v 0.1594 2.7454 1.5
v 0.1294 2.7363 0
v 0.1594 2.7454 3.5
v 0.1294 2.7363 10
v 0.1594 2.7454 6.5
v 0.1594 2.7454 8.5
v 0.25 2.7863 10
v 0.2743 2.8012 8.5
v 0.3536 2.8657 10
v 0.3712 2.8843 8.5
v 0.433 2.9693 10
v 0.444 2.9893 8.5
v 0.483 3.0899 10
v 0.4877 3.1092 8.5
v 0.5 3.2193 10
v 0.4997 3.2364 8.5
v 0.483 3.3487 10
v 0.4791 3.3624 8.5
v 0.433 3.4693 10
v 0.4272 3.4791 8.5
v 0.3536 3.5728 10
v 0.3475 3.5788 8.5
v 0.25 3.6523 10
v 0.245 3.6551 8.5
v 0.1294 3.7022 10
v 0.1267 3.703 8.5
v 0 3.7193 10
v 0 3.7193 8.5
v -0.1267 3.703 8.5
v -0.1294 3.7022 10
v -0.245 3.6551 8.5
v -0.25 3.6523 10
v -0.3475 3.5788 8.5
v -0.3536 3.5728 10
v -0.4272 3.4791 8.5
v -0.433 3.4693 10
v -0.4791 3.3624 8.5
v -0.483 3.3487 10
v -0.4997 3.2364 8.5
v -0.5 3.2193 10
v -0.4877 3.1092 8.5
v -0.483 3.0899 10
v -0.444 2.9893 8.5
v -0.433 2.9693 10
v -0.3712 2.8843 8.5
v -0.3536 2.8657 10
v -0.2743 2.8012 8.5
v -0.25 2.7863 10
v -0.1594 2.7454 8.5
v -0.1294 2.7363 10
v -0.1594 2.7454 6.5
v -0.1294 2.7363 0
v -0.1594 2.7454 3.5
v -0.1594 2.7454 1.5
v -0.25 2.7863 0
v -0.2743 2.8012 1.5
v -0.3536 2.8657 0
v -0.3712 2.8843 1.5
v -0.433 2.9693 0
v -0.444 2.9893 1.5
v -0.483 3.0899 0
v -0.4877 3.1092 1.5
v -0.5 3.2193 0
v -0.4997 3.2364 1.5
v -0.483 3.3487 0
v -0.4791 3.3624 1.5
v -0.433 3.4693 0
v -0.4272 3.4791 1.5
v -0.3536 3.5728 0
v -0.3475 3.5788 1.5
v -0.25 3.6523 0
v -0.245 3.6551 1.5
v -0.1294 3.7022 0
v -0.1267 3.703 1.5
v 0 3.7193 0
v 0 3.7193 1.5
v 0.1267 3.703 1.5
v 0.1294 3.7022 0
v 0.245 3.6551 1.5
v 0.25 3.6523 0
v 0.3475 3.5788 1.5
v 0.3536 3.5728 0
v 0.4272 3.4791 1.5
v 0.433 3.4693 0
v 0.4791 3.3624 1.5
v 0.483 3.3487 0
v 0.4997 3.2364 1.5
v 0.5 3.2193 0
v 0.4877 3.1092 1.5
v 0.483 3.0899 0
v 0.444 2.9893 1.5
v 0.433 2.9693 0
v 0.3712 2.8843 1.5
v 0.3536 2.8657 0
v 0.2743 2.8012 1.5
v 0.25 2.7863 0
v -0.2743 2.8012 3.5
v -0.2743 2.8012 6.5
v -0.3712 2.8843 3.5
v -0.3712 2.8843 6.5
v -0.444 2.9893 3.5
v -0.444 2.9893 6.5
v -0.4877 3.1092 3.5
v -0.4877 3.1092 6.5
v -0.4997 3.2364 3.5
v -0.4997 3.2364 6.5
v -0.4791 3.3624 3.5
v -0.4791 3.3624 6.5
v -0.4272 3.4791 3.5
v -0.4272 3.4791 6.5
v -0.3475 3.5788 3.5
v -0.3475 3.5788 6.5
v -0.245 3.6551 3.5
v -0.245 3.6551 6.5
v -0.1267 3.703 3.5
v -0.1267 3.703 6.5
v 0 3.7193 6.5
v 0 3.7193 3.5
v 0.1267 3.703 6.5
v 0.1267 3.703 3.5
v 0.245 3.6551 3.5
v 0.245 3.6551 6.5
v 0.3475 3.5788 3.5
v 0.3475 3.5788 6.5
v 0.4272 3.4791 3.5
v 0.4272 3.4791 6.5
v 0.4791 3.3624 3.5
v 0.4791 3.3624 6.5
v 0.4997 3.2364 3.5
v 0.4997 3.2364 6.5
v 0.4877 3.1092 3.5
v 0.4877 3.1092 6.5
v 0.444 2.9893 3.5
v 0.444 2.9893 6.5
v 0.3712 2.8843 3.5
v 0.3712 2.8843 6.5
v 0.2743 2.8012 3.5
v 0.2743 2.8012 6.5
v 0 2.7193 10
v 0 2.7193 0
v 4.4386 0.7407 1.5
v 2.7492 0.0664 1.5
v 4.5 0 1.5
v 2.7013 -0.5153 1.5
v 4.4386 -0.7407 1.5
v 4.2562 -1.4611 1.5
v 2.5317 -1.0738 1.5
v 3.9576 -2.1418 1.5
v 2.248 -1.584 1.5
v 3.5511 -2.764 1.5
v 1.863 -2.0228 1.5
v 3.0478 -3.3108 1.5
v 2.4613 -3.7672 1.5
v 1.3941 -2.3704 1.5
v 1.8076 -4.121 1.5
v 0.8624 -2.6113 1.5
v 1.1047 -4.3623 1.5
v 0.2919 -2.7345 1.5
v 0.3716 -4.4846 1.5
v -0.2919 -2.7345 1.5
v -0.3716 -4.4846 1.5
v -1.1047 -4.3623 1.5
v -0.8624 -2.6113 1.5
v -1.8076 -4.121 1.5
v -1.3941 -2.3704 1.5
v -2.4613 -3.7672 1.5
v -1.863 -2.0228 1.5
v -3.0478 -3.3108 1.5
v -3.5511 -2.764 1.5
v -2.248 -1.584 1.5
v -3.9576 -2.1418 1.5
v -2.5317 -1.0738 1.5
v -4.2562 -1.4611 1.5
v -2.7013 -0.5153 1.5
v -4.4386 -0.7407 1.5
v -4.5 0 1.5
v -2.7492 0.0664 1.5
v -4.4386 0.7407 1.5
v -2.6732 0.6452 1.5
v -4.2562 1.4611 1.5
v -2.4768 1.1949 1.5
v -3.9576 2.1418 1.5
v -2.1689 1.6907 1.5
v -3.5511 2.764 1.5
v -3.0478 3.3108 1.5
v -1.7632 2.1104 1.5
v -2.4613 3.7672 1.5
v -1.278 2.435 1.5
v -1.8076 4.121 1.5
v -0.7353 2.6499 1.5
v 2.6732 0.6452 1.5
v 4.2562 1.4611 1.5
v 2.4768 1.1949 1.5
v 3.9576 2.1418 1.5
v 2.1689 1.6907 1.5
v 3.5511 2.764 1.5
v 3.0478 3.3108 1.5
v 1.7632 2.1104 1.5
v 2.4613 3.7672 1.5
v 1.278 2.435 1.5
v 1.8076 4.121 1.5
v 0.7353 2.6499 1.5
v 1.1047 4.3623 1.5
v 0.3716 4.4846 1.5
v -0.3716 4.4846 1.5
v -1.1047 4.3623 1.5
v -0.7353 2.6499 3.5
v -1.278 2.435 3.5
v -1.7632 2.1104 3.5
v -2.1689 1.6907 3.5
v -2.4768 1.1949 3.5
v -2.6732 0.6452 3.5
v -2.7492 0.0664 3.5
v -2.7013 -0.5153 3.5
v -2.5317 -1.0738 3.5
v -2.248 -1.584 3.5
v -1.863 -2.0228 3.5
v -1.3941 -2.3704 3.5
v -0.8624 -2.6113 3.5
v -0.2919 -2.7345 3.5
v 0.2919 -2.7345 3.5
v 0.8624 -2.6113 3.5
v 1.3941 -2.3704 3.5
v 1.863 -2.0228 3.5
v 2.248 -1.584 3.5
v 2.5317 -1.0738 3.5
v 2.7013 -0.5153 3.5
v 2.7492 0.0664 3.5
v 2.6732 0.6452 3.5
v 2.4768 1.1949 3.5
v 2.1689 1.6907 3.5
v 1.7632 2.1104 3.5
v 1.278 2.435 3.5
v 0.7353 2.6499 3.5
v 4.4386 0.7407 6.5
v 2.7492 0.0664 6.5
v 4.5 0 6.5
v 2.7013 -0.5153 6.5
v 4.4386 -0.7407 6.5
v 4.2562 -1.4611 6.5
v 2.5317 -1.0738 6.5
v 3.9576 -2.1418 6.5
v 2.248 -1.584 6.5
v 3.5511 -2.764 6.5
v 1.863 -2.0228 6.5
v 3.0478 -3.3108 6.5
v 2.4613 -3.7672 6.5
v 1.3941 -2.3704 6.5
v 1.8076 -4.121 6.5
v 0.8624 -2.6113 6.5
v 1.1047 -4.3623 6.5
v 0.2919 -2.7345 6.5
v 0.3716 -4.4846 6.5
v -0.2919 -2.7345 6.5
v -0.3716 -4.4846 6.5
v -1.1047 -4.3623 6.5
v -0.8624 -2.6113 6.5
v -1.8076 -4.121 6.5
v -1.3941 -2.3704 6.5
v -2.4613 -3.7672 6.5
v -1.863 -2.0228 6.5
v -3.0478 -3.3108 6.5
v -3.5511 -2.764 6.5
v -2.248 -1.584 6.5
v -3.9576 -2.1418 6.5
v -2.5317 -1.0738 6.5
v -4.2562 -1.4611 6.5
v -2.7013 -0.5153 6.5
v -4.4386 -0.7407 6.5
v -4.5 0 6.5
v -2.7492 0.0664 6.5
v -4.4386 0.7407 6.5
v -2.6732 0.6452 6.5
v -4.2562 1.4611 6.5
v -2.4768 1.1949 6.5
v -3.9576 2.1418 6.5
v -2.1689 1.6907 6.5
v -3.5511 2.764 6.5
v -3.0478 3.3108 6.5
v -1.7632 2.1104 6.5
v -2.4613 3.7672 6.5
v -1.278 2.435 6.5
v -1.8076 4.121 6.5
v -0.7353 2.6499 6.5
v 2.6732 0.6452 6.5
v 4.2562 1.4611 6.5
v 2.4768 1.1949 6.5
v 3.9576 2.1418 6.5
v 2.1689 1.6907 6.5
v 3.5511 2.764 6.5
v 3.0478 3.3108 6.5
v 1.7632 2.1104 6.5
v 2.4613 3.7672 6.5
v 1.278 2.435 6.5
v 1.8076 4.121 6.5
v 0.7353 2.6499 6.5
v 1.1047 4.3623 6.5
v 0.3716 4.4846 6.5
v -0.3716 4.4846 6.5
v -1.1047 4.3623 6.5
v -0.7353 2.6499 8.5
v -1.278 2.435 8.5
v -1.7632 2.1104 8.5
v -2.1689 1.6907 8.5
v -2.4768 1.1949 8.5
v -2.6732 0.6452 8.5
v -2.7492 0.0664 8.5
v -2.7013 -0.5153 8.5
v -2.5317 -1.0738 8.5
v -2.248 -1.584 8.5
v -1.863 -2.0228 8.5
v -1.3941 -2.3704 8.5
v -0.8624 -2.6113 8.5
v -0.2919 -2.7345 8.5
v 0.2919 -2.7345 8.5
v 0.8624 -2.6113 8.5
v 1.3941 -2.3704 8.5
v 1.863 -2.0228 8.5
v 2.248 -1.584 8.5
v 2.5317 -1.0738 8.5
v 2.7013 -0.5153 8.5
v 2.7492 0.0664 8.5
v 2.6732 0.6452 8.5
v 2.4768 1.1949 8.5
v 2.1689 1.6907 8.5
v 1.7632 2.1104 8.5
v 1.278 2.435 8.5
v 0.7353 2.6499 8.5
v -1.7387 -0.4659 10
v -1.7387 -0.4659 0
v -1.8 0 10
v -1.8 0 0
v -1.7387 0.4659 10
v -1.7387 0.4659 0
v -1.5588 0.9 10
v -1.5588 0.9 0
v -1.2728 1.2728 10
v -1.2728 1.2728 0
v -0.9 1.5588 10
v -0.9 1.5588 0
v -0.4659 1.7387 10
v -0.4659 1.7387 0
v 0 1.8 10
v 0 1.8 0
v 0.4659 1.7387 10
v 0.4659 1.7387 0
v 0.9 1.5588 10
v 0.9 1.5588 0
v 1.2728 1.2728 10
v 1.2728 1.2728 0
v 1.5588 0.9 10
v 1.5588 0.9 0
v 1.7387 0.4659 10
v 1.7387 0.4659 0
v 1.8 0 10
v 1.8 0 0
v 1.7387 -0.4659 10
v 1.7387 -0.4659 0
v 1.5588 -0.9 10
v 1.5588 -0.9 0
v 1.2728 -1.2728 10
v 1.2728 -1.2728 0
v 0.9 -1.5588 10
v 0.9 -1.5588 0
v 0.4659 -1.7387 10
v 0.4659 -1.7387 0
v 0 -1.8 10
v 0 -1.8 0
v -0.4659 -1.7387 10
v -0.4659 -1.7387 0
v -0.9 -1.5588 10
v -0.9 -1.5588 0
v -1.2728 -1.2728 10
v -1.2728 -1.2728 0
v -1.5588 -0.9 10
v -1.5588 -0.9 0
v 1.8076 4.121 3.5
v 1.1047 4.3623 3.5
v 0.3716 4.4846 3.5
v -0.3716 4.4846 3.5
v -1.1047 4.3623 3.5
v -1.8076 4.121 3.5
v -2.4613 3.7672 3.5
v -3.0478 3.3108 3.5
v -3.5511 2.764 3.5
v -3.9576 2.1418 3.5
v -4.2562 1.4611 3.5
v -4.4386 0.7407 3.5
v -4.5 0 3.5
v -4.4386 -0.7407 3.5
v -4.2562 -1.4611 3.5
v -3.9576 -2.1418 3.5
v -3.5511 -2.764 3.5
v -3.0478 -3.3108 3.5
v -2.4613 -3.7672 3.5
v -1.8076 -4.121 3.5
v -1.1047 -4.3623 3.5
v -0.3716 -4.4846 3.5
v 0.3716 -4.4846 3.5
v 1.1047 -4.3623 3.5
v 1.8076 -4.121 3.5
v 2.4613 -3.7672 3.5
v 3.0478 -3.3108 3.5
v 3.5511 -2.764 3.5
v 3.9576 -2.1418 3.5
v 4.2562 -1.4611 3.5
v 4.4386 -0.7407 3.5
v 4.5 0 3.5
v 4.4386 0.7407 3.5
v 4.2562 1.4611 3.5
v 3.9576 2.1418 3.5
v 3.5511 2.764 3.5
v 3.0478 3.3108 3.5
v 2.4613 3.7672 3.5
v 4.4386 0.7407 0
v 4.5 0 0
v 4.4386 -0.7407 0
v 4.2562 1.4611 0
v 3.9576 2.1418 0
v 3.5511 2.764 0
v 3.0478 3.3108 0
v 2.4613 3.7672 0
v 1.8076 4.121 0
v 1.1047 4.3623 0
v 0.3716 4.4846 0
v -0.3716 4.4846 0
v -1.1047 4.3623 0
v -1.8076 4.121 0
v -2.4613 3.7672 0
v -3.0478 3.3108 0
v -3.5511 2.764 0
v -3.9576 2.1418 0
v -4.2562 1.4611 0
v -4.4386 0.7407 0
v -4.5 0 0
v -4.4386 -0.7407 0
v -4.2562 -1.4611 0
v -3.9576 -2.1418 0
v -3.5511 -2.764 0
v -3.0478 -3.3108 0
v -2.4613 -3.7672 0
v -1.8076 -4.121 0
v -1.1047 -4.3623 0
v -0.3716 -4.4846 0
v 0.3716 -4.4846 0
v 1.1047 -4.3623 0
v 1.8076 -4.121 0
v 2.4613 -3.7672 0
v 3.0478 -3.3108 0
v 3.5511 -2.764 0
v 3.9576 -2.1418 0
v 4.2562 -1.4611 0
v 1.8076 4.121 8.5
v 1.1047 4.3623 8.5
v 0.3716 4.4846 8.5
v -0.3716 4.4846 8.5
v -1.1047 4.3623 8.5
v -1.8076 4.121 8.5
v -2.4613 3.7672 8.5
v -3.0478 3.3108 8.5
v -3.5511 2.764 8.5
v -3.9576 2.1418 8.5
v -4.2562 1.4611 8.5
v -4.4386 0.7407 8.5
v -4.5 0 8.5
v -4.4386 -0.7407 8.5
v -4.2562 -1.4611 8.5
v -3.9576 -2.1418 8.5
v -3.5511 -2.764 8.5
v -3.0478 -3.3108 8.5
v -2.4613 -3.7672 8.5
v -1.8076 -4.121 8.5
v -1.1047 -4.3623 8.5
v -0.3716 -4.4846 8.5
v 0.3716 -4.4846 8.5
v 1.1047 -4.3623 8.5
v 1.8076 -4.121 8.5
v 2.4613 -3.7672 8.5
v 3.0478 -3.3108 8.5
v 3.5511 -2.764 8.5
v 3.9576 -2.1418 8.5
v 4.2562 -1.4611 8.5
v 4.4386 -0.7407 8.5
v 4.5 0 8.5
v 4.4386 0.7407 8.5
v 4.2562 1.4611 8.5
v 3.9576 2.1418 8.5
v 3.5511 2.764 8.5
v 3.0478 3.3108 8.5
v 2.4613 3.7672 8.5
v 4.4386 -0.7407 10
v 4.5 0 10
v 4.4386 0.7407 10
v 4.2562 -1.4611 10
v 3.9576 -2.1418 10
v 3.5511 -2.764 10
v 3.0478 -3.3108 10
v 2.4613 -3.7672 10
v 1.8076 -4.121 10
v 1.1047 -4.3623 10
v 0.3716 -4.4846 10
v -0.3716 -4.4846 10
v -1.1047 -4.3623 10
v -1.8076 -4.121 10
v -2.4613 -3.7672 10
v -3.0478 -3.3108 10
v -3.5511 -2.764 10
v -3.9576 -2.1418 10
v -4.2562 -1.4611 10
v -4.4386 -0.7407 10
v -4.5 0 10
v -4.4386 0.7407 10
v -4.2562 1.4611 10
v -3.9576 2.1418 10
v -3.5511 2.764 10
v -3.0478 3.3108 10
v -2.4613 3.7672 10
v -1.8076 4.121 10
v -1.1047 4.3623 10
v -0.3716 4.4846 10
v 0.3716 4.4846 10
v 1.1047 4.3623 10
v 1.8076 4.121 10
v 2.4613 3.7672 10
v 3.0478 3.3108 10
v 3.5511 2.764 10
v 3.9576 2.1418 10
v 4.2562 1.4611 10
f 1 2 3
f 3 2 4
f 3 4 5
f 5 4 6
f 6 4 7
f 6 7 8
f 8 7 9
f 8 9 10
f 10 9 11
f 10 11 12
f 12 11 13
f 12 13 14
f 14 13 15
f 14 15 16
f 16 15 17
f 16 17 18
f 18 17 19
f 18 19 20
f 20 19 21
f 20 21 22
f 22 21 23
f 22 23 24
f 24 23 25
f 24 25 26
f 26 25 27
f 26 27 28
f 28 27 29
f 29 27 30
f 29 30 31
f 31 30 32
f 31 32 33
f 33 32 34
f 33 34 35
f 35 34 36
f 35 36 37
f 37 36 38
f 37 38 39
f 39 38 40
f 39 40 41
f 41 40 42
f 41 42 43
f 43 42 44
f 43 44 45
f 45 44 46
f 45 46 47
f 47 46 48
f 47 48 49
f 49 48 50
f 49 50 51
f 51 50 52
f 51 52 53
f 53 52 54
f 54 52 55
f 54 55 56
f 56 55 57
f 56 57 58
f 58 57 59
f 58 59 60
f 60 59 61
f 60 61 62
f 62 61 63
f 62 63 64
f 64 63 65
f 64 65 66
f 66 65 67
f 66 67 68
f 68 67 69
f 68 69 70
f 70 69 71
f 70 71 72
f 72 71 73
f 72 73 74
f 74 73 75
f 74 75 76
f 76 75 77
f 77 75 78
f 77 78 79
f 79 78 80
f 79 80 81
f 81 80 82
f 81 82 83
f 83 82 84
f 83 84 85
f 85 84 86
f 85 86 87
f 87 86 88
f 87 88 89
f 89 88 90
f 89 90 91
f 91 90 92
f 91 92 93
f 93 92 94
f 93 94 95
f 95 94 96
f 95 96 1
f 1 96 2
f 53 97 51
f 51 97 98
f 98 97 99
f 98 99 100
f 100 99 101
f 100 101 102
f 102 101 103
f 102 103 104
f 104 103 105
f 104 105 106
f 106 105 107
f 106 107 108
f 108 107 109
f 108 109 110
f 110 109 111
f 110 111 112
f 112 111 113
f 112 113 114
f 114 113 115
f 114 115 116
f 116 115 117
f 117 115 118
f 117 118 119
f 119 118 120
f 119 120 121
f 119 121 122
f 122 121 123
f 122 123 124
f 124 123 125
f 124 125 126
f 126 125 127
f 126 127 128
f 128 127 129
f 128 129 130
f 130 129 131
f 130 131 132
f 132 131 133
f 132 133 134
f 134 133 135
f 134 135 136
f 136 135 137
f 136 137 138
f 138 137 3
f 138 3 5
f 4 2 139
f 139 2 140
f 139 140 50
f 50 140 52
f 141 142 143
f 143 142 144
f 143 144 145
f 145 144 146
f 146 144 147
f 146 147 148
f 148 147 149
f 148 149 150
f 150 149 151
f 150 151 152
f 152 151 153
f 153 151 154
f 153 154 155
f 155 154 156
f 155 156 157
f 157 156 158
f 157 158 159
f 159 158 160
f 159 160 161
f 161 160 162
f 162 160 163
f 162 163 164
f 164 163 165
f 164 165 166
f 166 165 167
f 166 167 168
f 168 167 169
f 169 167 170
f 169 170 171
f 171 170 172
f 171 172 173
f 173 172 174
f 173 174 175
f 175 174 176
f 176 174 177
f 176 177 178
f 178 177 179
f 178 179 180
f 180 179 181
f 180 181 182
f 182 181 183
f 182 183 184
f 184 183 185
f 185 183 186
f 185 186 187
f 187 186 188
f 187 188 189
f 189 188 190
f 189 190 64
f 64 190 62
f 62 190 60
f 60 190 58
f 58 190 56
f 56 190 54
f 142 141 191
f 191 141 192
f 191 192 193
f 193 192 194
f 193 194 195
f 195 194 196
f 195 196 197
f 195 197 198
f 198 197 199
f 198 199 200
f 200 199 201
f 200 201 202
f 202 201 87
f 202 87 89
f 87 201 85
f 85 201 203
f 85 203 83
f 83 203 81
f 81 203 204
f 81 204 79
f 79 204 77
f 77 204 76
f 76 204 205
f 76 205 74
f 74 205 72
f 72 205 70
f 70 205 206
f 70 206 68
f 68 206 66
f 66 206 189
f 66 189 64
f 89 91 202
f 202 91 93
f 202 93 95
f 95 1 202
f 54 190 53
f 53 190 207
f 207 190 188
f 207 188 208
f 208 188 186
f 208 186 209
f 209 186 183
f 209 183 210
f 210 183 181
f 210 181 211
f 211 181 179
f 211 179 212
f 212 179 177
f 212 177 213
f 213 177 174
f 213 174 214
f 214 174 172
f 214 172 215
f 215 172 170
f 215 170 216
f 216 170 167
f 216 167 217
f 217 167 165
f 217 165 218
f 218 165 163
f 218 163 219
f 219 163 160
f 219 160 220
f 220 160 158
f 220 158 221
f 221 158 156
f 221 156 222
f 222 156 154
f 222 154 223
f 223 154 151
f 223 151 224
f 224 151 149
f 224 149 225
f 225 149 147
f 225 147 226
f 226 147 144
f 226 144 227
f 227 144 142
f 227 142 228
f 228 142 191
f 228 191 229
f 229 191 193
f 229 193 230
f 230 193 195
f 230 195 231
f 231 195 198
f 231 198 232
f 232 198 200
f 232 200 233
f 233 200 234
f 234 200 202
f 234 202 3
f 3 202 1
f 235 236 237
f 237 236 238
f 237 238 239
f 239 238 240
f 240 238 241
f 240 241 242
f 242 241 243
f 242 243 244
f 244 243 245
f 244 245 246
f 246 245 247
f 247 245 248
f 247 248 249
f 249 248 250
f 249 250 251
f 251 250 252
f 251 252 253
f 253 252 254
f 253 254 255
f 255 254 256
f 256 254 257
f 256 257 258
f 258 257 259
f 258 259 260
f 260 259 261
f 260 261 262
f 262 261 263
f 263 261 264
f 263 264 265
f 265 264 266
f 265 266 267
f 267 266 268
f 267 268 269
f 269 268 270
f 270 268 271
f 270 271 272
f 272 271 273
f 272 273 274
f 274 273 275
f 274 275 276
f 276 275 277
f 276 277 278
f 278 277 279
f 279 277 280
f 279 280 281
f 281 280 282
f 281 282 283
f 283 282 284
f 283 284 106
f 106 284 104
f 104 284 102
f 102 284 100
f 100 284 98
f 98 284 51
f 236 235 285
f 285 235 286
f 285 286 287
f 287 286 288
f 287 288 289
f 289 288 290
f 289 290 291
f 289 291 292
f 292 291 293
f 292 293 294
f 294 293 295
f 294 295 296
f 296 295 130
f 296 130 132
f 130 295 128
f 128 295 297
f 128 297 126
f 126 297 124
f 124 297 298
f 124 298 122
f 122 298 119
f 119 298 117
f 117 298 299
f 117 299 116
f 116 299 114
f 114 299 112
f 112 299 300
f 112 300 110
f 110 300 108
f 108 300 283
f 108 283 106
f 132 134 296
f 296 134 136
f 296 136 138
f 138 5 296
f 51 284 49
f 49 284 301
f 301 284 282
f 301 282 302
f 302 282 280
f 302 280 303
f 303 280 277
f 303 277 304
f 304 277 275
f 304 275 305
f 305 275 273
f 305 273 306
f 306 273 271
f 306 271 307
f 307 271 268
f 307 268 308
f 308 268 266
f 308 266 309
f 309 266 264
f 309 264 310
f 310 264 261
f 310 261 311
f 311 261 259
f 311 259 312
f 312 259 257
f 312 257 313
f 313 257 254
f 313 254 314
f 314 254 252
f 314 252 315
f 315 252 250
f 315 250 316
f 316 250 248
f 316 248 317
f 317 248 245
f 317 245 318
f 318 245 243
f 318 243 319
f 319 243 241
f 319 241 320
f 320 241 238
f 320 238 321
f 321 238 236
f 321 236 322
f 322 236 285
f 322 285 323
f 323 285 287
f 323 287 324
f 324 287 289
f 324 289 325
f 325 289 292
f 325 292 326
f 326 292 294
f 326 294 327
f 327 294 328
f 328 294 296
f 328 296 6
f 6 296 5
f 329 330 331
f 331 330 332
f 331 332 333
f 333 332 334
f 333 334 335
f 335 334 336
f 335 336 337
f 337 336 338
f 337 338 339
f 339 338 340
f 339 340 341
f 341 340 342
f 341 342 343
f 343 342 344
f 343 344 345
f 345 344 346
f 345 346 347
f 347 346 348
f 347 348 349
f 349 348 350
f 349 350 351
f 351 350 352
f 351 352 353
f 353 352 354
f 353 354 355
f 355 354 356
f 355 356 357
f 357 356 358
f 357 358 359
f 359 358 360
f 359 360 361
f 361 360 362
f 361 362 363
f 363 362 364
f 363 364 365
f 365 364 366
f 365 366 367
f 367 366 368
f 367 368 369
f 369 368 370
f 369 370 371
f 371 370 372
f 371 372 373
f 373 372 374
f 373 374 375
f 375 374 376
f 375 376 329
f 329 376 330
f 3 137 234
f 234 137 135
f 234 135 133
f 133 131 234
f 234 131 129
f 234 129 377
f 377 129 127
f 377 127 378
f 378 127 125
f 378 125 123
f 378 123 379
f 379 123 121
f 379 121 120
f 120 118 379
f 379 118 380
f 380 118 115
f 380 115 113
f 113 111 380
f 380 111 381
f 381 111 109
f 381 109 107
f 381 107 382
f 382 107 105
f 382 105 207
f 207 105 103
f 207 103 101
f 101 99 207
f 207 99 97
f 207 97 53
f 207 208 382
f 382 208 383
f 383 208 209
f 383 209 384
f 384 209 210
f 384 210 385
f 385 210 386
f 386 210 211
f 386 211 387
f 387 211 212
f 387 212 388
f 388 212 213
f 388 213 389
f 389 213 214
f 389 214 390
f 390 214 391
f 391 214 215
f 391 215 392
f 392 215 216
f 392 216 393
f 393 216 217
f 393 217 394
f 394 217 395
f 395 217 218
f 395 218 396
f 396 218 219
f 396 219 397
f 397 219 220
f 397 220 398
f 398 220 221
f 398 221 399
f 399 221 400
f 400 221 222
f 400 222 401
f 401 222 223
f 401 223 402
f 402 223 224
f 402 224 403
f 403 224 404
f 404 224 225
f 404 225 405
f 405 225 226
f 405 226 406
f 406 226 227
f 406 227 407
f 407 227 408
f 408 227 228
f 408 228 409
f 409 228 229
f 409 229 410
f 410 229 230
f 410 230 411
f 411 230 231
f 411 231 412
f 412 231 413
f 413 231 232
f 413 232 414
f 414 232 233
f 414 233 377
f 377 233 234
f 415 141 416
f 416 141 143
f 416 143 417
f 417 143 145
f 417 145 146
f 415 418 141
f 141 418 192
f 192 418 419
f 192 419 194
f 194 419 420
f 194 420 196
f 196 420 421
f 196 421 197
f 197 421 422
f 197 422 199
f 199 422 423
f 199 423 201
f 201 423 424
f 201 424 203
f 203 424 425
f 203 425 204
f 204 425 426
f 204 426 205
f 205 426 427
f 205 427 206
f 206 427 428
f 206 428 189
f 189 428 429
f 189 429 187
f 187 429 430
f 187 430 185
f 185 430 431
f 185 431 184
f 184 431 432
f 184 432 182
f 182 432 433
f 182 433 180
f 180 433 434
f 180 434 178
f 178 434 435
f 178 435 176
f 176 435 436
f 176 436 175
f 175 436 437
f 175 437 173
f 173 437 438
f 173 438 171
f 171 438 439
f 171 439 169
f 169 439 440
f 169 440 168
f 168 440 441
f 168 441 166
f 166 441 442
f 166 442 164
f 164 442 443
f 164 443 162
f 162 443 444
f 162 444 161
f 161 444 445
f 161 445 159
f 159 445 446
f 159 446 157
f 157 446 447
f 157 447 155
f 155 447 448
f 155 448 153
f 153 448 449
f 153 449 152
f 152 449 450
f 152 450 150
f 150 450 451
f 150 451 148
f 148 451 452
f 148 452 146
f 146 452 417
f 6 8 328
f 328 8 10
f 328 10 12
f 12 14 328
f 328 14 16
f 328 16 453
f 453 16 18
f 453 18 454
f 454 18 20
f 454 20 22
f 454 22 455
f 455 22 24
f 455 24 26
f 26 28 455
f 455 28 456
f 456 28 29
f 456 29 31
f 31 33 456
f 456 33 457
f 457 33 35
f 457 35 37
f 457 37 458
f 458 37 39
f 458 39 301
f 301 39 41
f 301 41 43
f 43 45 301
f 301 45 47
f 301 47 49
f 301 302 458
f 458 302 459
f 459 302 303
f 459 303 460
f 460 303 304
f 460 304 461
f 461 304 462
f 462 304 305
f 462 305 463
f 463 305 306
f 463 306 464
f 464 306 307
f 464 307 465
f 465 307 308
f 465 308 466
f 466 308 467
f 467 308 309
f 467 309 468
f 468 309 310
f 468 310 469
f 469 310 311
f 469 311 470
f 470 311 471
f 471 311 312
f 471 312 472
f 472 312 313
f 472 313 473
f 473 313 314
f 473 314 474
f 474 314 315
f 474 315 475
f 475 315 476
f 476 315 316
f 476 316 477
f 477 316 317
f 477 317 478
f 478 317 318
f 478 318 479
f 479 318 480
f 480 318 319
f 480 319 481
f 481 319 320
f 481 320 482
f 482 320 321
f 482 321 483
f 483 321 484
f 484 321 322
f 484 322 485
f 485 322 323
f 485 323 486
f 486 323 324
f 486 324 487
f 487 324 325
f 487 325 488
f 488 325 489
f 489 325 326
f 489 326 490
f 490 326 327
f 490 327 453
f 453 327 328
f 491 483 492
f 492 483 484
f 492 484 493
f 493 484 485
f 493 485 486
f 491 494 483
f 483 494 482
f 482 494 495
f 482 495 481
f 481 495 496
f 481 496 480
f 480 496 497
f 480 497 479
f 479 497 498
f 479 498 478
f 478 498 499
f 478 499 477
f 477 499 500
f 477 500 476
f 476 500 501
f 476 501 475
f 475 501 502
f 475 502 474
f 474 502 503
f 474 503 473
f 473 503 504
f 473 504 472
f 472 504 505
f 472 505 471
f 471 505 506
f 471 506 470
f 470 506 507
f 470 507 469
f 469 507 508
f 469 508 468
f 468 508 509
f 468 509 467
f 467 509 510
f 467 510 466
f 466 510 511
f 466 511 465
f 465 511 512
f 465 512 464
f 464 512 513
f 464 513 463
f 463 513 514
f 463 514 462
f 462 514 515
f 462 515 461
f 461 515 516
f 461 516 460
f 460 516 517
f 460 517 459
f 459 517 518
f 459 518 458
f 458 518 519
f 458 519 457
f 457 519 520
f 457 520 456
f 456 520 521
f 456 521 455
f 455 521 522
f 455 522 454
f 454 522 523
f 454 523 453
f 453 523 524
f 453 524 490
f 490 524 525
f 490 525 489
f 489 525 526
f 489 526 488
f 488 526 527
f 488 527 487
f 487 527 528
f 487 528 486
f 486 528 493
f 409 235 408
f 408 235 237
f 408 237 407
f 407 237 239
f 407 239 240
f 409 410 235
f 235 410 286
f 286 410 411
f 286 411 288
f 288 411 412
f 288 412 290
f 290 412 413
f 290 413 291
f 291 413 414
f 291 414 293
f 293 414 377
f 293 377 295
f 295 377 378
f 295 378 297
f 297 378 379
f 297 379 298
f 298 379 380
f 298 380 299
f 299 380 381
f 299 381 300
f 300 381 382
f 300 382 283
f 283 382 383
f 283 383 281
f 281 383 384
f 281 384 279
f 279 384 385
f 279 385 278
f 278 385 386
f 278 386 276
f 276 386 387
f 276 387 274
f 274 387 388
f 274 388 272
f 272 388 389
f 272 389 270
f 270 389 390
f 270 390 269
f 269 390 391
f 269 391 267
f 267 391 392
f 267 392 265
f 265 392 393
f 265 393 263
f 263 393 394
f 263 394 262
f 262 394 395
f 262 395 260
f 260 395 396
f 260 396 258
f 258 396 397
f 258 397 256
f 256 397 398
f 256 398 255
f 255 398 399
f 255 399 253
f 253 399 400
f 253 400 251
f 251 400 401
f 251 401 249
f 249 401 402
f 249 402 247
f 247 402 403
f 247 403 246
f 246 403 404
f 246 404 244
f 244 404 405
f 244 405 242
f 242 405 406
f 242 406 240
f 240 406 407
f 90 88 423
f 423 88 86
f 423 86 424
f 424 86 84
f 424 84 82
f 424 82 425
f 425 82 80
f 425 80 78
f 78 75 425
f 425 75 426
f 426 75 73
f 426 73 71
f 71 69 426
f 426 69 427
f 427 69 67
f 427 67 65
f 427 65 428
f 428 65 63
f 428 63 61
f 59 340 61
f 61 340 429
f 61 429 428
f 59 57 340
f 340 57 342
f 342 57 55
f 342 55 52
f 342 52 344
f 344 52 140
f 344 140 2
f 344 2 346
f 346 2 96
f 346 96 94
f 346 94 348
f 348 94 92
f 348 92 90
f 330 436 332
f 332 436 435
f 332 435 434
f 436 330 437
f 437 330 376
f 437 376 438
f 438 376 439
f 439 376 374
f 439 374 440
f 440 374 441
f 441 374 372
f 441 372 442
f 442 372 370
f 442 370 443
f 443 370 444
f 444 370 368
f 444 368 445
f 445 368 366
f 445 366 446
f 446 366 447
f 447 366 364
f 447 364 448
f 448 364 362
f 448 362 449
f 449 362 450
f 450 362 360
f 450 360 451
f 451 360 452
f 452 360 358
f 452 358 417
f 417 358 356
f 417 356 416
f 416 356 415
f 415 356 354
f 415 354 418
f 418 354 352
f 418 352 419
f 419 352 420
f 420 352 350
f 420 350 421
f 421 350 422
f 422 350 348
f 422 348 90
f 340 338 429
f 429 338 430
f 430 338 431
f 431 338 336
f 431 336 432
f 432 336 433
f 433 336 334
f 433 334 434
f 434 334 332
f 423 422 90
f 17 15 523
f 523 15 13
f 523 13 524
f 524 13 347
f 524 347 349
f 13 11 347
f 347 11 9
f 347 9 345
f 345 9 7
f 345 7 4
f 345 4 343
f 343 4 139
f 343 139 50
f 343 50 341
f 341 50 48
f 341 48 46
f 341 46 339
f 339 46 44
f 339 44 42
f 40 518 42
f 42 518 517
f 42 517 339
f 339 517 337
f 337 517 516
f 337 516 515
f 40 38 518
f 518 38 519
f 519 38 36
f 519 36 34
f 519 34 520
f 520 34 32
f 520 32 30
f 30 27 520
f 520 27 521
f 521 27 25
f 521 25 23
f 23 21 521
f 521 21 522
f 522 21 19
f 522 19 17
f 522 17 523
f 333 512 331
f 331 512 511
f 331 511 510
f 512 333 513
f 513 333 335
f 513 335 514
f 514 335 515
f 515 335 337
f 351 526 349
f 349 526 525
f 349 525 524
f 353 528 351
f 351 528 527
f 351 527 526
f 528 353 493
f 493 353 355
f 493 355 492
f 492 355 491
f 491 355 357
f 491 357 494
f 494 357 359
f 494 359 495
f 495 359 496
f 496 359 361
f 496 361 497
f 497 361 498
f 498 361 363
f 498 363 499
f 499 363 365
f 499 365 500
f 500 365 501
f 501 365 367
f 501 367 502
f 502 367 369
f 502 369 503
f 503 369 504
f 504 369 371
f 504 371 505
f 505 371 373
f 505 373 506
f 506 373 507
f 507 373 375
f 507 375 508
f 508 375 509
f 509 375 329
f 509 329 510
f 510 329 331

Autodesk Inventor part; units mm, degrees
ref_plane "YZ Plane" through (0, 0, 0) normal (1, 0, 0) x (0, 1, 0)
ref_plane "XZ Plane" through (0, 0, 0) normal (0, 1, 0) x (-1, 0, 0)
ref_plane "XY Plane" through (0, 0, 0) normal (0, 0, 1) x (1, 0, 0)
sketch "Sketch1" plane through (0, 0, 0) normal (0, 0, 1) x (1, 0, 0)
  circle A0 centre (0, 0) radius 4.5
  dimension "d0" = 9
extrude "Extrusion1" add sketch "Sketch1" along normal blind 10
ref_plane "Work Plane2" through (0, 0, 7.5) normal (0, 0, 1) x (1, 0, 0)
ref_plane "Work Plane1" through (0, 0, 5) normal (0, 0, 1) x (1, 0, 0)
sketch "Sketch2" plane through (0, 0, 7.5) normal (0, 0, 1) x (1, 0, 0)
  circle A0 centre (0, 0) radius 4.5
  circle A1 centre (0, 0) radius 2.75
  dimension "d3" = 5.5
  dimension "d4" = 9
extrude "Extrusion2" cut sketch "Sketch2" along normal mid plane 2
mirror "Mirror1" about plane through (0, 0, 5) normal (0, 0, 1) of "Extrusion2"
sketch "Sketch3" plane through (0, 0, 0) normal (0, 0, -1) x (-1, 0, 0)
  point P0 (0, 0)
sketch "Sketch4" plane through (0, 0, 0) normal (0, 0, -1) x (-1, 0, 0)
  circle A0 centre (0, 0) radius 1.8
  dimension "d11" = 3.6
extrude "Extrusion3" cut sketch "Sketch4" against normal blind 10
sketch "Sketch5" plane through (0, 0, 10) normal (0, 0, 1) x (1, 0, 0)
  circle A0 centre (0, 3.2193) radius 0.5
  point P0 (0, 0)
  dimension "d14" = 1
extrude "Extrusion4" cut sketch "Sketch5" against normal blind 10
properties part number "MotorPully"
